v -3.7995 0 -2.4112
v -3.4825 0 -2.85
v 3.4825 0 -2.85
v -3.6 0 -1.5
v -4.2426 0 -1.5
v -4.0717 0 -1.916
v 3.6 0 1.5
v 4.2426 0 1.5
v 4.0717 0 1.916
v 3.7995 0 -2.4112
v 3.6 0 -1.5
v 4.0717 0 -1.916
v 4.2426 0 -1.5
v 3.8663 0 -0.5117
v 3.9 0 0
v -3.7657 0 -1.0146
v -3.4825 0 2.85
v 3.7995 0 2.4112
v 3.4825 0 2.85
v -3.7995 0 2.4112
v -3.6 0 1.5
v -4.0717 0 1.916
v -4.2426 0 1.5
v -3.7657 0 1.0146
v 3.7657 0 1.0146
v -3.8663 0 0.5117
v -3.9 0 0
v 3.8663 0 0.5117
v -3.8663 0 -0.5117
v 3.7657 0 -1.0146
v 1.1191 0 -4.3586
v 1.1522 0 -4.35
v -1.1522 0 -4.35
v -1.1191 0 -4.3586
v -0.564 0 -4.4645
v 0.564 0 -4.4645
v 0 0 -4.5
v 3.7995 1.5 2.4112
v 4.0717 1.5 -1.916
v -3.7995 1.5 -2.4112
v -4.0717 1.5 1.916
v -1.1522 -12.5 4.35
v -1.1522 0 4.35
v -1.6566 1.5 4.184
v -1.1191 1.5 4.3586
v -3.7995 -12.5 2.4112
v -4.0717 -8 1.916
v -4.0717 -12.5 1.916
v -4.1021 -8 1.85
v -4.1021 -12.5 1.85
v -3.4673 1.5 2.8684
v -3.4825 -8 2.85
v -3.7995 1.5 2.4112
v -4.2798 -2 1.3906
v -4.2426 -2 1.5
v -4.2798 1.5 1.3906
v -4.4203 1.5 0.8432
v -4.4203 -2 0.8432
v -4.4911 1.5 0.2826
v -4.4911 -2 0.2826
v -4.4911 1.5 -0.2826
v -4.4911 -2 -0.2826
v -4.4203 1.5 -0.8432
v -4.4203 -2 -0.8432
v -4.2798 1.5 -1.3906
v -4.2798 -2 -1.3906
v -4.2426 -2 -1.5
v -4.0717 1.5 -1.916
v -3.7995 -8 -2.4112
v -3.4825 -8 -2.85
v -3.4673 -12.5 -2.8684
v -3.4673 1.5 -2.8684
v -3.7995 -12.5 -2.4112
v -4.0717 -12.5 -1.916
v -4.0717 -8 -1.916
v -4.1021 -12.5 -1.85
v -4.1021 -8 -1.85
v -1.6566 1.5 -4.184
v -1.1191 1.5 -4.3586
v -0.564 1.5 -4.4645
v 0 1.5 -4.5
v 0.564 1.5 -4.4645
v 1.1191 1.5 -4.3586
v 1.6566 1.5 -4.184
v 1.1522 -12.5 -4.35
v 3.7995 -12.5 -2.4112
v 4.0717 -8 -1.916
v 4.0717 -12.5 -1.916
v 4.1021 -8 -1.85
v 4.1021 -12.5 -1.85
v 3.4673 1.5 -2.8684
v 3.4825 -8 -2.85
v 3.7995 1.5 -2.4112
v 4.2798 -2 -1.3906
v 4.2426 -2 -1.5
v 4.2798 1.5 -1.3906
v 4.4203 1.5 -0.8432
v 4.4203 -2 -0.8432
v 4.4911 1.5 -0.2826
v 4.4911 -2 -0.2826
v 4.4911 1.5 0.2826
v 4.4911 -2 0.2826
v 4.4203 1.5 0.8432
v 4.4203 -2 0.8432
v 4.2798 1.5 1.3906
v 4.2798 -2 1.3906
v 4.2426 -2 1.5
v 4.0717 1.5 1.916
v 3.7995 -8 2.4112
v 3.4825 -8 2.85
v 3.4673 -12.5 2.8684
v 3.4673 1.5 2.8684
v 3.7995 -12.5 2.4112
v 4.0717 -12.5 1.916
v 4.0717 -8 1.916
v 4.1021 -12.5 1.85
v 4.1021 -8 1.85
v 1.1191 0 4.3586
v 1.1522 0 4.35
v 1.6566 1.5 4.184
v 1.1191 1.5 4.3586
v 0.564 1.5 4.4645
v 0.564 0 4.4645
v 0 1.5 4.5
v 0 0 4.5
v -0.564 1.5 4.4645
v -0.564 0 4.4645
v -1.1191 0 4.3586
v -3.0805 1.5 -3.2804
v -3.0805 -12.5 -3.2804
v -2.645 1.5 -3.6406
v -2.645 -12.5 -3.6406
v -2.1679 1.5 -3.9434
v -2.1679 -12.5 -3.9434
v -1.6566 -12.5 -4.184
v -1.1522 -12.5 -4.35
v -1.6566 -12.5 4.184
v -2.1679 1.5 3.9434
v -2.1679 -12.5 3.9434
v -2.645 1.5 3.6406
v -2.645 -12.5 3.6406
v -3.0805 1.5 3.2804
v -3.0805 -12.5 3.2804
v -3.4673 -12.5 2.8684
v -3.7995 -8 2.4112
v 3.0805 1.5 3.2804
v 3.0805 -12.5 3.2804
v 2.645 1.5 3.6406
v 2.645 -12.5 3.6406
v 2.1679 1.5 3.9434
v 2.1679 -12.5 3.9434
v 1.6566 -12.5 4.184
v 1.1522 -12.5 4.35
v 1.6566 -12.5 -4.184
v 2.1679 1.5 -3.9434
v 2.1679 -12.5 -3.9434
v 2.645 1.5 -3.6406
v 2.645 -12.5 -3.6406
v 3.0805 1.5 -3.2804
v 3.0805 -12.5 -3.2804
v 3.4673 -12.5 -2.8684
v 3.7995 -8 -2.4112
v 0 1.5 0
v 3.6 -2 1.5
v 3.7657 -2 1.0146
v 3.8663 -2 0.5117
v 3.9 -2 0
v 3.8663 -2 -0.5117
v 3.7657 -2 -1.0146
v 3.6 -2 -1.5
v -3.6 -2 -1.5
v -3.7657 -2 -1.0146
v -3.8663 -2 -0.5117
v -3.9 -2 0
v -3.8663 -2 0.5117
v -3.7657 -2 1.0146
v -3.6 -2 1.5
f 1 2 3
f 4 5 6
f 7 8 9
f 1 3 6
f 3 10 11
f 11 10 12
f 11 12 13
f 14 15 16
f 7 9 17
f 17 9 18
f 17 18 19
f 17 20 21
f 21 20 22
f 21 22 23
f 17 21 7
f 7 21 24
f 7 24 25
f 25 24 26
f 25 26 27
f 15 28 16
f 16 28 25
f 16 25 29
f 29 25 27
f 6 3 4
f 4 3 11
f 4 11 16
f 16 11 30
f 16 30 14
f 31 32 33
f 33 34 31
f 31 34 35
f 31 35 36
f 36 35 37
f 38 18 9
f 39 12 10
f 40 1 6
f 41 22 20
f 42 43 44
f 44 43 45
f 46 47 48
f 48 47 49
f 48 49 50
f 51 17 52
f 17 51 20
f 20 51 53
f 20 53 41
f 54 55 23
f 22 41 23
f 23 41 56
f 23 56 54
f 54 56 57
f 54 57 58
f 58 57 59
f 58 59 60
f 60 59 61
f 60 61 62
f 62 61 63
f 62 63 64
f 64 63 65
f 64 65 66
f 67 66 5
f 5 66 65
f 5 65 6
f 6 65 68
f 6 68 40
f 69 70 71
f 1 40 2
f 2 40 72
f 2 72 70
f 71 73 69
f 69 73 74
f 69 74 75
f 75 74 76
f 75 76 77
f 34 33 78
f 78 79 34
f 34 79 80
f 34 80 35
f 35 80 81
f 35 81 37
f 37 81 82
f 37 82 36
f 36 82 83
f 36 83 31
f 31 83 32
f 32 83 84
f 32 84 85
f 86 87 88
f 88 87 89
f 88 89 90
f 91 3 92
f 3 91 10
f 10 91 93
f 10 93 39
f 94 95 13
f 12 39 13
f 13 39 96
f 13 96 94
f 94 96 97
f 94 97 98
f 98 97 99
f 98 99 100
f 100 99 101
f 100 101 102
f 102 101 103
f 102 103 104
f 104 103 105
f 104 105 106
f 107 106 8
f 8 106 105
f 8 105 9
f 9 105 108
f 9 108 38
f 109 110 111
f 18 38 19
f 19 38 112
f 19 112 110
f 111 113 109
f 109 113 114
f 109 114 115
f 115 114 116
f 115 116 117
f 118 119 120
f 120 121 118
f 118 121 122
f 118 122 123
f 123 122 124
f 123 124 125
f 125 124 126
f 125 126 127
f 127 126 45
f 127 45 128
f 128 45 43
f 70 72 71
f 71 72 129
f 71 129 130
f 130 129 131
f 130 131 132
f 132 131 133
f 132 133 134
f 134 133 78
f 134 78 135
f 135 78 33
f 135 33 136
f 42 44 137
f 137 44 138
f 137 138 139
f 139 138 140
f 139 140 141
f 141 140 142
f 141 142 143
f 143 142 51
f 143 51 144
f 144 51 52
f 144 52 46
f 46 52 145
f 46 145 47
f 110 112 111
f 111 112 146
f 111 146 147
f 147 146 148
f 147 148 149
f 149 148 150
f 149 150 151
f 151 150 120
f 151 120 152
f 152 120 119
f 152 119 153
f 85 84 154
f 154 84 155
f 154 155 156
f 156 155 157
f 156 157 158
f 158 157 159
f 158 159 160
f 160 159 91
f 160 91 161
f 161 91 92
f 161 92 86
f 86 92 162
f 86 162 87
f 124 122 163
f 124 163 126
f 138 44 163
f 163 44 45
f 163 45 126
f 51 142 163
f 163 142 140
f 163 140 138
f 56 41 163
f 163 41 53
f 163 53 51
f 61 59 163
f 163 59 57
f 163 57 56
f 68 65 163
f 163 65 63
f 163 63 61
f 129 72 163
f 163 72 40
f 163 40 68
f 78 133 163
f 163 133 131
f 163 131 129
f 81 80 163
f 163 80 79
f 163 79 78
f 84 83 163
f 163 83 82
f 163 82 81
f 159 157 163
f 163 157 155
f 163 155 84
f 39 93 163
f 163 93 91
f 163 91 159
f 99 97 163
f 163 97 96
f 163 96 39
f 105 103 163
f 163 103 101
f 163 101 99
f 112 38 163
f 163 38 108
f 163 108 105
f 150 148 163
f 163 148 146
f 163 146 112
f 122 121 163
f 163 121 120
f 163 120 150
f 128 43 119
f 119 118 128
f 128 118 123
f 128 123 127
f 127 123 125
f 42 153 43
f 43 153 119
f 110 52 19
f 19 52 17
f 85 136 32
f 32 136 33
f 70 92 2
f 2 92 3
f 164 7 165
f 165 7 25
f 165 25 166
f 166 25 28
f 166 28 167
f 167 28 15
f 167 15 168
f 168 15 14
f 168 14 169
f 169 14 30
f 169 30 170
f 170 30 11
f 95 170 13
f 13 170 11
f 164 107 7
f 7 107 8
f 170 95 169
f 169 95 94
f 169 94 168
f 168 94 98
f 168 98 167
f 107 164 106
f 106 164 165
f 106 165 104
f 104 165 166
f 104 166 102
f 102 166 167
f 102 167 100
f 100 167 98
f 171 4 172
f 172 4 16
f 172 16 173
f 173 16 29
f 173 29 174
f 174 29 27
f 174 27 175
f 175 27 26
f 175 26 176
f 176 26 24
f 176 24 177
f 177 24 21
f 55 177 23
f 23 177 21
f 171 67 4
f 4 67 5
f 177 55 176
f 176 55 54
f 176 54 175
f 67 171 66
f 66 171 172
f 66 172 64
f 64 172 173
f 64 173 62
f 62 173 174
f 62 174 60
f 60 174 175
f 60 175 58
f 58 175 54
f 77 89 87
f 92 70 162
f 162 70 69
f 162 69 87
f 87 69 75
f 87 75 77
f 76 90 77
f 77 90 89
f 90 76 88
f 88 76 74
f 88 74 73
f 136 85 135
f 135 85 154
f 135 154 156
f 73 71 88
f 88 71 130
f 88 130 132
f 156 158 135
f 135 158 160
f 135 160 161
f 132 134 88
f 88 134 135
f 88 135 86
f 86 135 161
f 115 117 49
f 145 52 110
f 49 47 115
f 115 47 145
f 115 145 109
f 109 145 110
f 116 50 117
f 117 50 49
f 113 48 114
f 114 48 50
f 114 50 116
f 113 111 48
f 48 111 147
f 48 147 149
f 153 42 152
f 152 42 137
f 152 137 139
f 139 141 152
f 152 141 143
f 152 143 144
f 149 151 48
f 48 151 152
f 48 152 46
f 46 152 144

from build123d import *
from build123d.topology import SkipClean

# Parameters (mm, degrees)
SKETCH1_R           = 4.5
BOSS_EXTRUDE1_DEPTH = 1.5
BOSS_EXTRUDE2_START = 2
BOSS_EXTRUDE2_DEPTH = 2
BOSS_EXTRUDE3_START = 6
BOSS_EXTRUDE3_DEPTH = 6
BOSS_EXTRUDE4_START = 4.5
BOSS_EXTRUDE4_DEPTH = 4.5


with BuildPart() as part:
    # Sketch1 → Boss-Extrude1 (new body)
    with BuildSketch(Plane(origin=(0, 0, 0), x_dir=(1, 0, 0), z_dir=(0, 1, 0))):
        Circle(SKETCH1_R)
    extrude(amount=BOSS_EXTRUDE1_DEPTH)

    # Sketch2 → Boss-Extrude2 (add)
    with SkipClean():  # the faces are left unmerged after this step: merging them gives an invalid solid
        with BuildSketch(Plane.XZ.offset(BOSS_EXTRUDE2_START)):
            with BuildLine():
                ThreePointArc((-1.152171862, 4.35), (-2.43566088, 3.783854658), (-3.48245603, 2.85))
                Line((-3.48245603, 2.85), (3.48245603, 2.85))
                ThreePointArc((3.48245603, 2.85), (2.43566088, 3.783854658), (1.152171862, 4.35))
                Line((1.152171862, 4.35), (-1.152171862, 4.35))
            make_face()
            with BuildLine():
                Line((-3.6, 1.5), (-4.242640687, 1.5))
                ThreePointArc((-4.242640687, 1.5), (-4.5, 0), (-4.242640687, -1.5))
                Line((-4.242640687, -1.5), (-3.6, -1.5))
                ThreePointArc((-3.6, -1.5), (-3.9, 0), (-3.6, 1.5))
            make_face()
            with BuildLine():
                Line((4.242640687, 1.5), (3.6, 1.5))
                ThreePointArc((3.6, 1.5), (3.9, 0), (3.6, -1.5))
                Line((3.6, -1.5), (4.242640687, -1.5))
                ThreePointArc((4.242640687, -1.5), (4.5, 0), (4.242640687, 1.5))
            make_face()
            with BuildLine():
                Line((3.48245603, -2.85), (-3.48245603, -2.85))
                ThreePointArc((-3.48245603, -2.85), (-2.43566088, -3.783854658), (-1.152171862, -4.35))
                Line((-1.152171862, -4.35), (1.152171862, -4.35))
                ThreePointArc((1.152171862, -4.35), (2.43566088, -3.783854658), (3.48245603, -2.85))
            make_face()
        extrude(amount=-BOSS_EXTRUDE2_DEPTH)

    # Sketch3 → Boss-Extrude3 (add)
    with SkipClean():  # the faces are left unmerged after this step: merging them gives an invalid solid
        with BuildSketch(Plane.XZ.offset(2).offset(BOSS_EXTRUDE3_START)):
            with BuildLine():
                ThreePointArc((-1.152171862, 4.35), (-2.43566088, 3.783854658), (-3.48245603, 2.85))
                Line((-3.48245603, 2.85), (3.48245603, 2.85))
                ThreePointArc((3.48245603, 2.85), (2.43566088, 3.783854658), (1.152171862, 4.35))
                Line((1.152171862, 4.35), (-1.152171862, 4.35))
            make_face()
            with BuildLine():
                Line((3.48245603, -2.85), (-3.48245603, -2.85))
                ThreePointArc((-3.48245603, -2.85), (-2.43566088, -3.783854658), (-1.152171862, -4.35))
                Line((-1.152171862, -4.35), (1.152171862, -4.35))
                ThreePointArc((1.152171862, -4.35), (2.43566088, -3.783854658), (3.48245603, -2.85))
            make_face()
        extrude(amount=-BOSS_EXTRUDE3_DEPTH)

    # Sketch4 → Boss-Extrude4 (add)
    with SkipClean():  # the faces are left unmerged after this step: merging them gives an invalid solid
        with BuildSketch(Plane.XZ.offset(8).offset(BOSS_EXTRUDE4_START)):
            with BuildLine():
                Line((-1.152171862, -4.35), (1.152171862, -4.35))
                ThreePointArc((1.152171862, -4.35), (2.909369597, -3.433011586), (4.102133591, -1.85))
                Line((4.102133591, -1.85), (-4.102133591, -1.85))
                ThreePointArc((-4.102133591, -1.85), (-2.909369597, -3.433011586), (-1.152171862, -4.35))
            make_face()
            with BuildLine():
                ThreePointArc((-1.152171862, 4.35), (-2.909369597, 3.433011586), (-4.102133591, 1.85))
                Line((-4.102133591, 1.85), (4.102133591, 1.85))
                ThreePointArc((4.102133591, 1.85), (2.909369597, 3.433011586), (1.152171862, 4.35))
                Line((1.152171862, 4.35), (-1.152171862, 4.35))
            make_face()
        extrude(amount=-BOSS_EXTRUDE4_DEPTH)


solid = part.part
